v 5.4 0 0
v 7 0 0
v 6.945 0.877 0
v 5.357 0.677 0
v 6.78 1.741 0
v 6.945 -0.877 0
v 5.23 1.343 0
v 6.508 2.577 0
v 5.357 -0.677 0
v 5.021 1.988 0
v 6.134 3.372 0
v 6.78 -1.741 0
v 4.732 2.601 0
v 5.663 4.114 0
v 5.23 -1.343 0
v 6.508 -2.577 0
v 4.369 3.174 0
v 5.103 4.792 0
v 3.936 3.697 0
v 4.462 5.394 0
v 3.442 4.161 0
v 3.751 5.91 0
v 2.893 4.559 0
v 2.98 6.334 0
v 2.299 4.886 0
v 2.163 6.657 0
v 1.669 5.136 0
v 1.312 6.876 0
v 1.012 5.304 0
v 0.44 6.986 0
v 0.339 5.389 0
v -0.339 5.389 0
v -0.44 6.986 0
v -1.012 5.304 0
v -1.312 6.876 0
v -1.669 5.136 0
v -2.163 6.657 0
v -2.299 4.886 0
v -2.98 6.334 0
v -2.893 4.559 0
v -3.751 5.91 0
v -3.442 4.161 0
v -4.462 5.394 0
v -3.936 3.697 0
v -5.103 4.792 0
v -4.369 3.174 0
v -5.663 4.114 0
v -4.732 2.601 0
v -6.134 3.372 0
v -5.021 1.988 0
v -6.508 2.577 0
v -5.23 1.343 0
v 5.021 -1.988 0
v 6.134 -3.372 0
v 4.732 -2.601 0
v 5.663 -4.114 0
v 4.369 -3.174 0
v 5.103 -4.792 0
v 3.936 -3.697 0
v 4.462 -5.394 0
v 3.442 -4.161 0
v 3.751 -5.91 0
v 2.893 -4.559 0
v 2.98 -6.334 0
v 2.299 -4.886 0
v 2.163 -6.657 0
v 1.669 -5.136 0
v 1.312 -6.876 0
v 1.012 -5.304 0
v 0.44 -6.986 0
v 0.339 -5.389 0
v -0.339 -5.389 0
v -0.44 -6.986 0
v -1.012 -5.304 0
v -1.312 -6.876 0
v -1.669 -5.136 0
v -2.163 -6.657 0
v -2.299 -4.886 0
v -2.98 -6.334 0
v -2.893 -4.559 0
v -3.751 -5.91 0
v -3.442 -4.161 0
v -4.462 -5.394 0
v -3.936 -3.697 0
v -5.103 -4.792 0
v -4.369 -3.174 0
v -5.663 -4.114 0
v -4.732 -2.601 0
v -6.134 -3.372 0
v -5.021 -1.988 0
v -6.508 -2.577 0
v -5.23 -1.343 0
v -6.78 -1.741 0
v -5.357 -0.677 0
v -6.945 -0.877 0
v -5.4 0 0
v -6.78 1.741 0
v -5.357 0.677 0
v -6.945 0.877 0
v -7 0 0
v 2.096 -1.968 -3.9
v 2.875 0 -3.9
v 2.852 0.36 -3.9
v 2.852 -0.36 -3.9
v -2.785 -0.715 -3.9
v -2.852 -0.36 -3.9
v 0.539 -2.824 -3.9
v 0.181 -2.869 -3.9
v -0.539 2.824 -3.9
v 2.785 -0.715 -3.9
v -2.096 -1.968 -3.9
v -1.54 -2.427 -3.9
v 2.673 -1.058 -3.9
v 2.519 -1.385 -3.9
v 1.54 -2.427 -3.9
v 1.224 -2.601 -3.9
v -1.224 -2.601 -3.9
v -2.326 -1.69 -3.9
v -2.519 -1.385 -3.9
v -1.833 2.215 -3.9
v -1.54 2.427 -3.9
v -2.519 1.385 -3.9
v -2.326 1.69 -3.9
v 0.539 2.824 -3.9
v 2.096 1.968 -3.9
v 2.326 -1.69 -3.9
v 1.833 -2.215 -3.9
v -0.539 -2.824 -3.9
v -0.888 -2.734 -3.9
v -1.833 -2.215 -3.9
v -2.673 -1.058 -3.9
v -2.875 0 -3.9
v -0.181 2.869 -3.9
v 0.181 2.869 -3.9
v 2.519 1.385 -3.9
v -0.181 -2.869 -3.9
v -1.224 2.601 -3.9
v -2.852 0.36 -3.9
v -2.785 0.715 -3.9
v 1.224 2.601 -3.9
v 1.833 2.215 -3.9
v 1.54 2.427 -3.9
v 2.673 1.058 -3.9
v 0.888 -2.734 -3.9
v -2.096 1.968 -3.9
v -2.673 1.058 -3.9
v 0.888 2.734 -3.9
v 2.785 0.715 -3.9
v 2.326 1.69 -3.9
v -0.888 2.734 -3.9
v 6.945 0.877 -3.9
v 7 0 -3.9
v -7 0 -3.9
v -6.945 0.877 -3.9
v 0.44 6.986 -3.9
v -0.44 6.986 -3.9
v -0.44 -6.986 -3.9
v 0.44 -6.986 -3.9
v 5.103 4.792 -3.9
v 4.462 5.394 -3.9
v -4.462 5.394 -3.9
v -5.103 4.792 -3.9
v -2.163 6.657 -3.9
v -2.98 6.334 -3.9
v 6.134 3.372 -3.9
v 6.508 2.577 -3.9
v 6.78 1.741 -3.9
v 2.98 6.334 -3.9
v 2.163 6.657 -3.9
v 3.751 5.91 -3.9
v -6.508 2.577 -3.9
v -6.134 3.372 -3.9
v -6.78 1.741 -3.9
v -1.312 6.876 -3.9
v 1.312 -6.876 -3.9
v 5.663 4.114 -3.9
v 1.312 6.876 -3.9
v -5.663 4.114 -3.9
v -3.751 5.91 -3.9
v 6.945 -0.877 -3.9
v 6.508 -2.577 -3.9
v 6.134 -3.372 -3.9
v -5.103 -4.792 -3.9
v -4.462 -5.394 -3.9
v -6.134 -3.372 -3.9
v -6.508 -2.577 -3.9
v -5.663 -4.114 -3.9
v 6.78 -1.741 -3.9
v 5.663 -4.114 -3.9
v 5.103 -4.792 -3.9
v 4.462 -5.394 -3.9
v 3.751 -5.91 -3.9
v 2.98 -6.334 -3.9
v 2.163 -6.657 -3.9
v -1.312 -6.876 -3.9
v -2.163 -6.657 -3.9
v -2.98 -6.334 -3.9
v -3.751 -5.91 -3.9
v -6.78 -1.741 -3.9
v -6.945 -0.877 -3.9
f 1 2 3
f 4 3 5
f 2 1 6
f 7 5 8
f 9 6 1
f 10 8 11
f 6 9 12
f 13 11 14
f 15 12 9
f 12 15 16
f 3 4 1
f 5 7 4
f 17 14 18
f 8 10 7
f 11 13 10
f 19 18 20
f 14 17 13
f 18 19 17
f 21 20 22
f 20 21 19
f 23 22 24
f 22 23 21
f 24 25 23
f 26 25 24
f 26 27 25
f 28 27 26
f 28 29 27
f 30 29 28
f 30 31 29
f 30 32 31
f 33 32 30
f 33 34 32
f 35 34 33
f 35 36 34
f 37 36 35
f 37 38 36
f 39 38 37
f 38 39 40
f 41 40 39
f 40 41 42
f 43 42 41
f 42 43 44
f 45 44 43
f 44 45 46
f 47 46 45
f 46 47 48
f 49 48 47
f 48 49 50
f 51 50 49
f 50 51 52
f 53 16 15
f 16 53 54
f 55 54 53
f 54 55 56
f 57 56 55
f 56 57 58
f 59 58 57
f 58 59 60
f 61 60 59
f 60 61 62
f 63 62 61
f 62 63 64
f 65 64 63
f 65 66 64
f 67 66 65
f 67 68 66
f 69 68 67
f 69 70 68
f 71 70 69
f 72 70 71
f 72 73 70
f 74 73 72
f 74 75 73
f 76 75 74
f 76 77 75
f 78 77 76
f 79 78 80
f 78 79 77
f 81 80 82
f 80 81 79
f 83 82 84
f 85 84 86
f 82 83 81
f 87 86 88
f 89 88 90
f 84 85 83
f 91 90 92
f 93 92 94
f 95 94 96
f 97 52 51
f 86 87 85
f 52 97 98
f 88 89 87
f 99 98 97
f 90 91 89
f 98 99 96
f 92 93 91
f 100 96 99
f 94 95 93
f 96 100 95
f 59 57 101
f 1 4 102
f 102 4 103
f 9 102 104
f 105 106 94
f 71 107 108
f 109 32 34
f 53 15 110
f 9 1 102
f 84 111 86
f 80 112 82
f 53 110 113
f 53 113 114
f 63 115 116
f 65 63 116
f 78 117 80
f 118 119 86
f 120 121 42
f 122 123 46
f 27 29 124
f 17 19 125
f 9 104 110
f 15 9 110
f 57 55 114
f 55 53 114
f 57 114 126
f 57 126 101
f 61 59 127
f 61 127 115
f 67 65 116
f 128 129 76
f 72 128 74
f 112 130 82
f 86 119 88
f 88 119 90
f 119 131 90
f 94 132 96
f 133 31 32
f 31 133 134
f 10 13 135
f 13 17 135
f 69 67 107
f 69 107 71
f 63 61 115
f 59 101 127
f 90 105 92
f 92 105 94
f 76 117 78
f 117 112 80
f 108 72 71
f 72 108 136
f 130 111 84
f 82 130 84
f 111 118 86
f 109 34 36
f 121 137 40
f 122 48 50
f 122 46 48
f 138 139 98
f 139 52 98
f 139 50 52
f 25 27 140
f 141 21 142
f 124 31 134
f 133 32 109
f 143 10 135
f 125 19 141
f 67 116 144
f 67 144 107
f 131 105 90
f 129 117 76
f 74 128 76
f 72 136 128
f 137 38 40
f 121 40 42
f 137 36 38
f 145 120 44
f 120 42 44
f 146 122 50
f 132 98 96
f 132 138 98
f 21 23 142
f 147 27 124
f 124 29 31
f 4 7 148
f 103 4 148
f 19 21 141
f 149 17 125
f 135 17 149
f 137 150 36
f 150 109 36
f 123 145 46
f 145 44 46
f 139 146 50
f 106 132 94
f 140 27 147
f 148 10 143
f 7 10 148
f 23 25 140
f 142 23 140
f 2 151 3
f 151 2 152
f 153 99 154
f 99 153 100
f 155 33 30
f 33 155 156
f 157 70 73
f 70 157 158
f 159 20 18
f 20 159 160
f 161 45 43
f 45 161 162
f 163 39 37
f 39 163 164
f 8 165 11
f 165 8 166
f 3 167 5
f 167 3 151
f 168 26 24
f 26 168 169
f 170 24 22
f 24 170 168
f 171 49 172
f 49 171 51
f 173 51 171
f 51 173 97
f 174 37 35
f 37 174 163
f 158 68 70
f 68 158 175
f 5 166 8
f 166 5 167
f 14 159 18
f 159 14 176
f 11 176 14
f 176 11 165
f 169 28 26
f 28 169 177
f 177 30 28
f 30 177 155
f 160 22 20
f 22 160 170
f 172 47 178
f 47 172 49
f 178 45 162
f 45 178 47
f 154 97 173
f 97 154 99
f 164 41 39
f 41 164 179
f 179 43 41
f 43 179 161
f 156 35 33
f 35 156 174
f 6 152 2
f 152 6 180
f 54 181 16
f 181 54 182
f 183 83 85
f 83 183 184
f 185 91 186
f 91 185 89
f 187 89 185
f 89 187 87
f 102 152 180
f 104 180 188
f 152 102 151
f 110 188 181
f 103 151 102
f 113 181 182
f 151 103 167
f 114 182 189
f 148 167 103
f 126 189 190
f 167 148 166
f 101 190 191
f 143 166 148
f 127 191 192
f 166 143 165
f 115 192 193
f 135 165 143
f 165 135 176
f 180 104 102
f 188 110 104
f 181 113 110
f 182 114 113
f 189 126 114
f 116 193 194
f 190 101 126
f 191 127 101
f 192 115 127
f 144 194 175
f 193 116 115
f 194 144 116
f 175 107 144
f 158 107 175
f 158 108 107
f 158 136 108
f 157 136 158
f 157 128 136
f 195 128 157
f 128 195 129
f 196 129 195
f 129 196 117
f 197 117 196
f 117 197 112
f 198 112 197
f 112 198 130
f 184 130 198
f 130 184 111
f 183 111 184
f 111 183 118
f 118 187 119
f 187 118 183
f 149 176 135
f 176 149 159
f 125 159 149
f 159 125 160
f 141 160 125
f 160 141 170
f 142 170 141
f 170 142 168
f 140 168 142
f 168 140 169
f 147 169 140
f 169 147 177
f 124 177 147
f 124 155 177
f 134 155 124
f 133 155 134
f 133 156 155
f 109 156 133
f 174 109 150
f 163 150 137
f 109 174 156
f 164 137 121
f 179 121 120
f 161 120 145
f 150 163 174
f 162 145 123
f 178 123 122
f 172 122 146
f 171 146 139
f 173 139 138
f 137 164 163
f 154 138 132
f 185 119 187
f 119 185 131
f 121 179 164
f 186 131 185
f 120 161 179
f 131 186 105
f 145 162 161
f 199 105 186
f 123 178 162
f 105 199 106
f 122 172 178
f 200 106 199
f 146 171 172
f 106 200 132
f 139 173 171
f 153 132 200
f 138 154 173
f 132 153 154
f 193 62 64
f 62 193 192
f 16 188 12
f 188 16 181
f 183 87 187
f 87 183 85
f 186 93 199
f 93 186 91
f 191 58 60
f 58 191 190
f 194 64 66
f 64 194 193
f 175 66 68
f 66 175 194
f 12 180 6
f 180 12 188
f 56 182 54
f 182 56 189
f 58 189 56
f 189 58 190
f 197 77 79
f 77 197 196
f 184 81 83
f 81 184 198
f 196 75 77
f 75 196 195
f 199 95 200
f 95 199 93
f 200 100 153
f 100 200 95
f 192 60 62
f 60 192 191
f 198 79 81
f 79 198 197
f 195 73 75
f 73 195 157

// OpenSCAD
$fn = 50;


difference() {
	union() {
		translate(v = [0, 0, -3.9000000000]) {
			cylinder(h = 3.9000000000, r = 7.0000000000);
		}
	}
	union() {
		translate(v = [0, 0, 0]) {
			rotate(a = [0, 0, 0]) {
				difference() {
					union() {
						translate(v = [0, 0, -6.9000000000]) {
							cylinder(h = 6.9000000000, r = 2.6000000000);
						}
						translate(v = [0, 0, -3.9000000000]) {
							cylinder(h = 3.9000000000, r1 = 2.8750000000, r2 = 5.4000000000);
						}
						translate(v = [0, 0, -6.9000000000]) {
							cylinder(h = 6.9000000000, r = 2.8750000000);
						}
						translate(v = [0, 0, -6.9000000000]) {
							cylinder(h = 6.9000000000, r = 2.6000000000);
						}
					}
					union();
				}
			}
		}
	}
}
